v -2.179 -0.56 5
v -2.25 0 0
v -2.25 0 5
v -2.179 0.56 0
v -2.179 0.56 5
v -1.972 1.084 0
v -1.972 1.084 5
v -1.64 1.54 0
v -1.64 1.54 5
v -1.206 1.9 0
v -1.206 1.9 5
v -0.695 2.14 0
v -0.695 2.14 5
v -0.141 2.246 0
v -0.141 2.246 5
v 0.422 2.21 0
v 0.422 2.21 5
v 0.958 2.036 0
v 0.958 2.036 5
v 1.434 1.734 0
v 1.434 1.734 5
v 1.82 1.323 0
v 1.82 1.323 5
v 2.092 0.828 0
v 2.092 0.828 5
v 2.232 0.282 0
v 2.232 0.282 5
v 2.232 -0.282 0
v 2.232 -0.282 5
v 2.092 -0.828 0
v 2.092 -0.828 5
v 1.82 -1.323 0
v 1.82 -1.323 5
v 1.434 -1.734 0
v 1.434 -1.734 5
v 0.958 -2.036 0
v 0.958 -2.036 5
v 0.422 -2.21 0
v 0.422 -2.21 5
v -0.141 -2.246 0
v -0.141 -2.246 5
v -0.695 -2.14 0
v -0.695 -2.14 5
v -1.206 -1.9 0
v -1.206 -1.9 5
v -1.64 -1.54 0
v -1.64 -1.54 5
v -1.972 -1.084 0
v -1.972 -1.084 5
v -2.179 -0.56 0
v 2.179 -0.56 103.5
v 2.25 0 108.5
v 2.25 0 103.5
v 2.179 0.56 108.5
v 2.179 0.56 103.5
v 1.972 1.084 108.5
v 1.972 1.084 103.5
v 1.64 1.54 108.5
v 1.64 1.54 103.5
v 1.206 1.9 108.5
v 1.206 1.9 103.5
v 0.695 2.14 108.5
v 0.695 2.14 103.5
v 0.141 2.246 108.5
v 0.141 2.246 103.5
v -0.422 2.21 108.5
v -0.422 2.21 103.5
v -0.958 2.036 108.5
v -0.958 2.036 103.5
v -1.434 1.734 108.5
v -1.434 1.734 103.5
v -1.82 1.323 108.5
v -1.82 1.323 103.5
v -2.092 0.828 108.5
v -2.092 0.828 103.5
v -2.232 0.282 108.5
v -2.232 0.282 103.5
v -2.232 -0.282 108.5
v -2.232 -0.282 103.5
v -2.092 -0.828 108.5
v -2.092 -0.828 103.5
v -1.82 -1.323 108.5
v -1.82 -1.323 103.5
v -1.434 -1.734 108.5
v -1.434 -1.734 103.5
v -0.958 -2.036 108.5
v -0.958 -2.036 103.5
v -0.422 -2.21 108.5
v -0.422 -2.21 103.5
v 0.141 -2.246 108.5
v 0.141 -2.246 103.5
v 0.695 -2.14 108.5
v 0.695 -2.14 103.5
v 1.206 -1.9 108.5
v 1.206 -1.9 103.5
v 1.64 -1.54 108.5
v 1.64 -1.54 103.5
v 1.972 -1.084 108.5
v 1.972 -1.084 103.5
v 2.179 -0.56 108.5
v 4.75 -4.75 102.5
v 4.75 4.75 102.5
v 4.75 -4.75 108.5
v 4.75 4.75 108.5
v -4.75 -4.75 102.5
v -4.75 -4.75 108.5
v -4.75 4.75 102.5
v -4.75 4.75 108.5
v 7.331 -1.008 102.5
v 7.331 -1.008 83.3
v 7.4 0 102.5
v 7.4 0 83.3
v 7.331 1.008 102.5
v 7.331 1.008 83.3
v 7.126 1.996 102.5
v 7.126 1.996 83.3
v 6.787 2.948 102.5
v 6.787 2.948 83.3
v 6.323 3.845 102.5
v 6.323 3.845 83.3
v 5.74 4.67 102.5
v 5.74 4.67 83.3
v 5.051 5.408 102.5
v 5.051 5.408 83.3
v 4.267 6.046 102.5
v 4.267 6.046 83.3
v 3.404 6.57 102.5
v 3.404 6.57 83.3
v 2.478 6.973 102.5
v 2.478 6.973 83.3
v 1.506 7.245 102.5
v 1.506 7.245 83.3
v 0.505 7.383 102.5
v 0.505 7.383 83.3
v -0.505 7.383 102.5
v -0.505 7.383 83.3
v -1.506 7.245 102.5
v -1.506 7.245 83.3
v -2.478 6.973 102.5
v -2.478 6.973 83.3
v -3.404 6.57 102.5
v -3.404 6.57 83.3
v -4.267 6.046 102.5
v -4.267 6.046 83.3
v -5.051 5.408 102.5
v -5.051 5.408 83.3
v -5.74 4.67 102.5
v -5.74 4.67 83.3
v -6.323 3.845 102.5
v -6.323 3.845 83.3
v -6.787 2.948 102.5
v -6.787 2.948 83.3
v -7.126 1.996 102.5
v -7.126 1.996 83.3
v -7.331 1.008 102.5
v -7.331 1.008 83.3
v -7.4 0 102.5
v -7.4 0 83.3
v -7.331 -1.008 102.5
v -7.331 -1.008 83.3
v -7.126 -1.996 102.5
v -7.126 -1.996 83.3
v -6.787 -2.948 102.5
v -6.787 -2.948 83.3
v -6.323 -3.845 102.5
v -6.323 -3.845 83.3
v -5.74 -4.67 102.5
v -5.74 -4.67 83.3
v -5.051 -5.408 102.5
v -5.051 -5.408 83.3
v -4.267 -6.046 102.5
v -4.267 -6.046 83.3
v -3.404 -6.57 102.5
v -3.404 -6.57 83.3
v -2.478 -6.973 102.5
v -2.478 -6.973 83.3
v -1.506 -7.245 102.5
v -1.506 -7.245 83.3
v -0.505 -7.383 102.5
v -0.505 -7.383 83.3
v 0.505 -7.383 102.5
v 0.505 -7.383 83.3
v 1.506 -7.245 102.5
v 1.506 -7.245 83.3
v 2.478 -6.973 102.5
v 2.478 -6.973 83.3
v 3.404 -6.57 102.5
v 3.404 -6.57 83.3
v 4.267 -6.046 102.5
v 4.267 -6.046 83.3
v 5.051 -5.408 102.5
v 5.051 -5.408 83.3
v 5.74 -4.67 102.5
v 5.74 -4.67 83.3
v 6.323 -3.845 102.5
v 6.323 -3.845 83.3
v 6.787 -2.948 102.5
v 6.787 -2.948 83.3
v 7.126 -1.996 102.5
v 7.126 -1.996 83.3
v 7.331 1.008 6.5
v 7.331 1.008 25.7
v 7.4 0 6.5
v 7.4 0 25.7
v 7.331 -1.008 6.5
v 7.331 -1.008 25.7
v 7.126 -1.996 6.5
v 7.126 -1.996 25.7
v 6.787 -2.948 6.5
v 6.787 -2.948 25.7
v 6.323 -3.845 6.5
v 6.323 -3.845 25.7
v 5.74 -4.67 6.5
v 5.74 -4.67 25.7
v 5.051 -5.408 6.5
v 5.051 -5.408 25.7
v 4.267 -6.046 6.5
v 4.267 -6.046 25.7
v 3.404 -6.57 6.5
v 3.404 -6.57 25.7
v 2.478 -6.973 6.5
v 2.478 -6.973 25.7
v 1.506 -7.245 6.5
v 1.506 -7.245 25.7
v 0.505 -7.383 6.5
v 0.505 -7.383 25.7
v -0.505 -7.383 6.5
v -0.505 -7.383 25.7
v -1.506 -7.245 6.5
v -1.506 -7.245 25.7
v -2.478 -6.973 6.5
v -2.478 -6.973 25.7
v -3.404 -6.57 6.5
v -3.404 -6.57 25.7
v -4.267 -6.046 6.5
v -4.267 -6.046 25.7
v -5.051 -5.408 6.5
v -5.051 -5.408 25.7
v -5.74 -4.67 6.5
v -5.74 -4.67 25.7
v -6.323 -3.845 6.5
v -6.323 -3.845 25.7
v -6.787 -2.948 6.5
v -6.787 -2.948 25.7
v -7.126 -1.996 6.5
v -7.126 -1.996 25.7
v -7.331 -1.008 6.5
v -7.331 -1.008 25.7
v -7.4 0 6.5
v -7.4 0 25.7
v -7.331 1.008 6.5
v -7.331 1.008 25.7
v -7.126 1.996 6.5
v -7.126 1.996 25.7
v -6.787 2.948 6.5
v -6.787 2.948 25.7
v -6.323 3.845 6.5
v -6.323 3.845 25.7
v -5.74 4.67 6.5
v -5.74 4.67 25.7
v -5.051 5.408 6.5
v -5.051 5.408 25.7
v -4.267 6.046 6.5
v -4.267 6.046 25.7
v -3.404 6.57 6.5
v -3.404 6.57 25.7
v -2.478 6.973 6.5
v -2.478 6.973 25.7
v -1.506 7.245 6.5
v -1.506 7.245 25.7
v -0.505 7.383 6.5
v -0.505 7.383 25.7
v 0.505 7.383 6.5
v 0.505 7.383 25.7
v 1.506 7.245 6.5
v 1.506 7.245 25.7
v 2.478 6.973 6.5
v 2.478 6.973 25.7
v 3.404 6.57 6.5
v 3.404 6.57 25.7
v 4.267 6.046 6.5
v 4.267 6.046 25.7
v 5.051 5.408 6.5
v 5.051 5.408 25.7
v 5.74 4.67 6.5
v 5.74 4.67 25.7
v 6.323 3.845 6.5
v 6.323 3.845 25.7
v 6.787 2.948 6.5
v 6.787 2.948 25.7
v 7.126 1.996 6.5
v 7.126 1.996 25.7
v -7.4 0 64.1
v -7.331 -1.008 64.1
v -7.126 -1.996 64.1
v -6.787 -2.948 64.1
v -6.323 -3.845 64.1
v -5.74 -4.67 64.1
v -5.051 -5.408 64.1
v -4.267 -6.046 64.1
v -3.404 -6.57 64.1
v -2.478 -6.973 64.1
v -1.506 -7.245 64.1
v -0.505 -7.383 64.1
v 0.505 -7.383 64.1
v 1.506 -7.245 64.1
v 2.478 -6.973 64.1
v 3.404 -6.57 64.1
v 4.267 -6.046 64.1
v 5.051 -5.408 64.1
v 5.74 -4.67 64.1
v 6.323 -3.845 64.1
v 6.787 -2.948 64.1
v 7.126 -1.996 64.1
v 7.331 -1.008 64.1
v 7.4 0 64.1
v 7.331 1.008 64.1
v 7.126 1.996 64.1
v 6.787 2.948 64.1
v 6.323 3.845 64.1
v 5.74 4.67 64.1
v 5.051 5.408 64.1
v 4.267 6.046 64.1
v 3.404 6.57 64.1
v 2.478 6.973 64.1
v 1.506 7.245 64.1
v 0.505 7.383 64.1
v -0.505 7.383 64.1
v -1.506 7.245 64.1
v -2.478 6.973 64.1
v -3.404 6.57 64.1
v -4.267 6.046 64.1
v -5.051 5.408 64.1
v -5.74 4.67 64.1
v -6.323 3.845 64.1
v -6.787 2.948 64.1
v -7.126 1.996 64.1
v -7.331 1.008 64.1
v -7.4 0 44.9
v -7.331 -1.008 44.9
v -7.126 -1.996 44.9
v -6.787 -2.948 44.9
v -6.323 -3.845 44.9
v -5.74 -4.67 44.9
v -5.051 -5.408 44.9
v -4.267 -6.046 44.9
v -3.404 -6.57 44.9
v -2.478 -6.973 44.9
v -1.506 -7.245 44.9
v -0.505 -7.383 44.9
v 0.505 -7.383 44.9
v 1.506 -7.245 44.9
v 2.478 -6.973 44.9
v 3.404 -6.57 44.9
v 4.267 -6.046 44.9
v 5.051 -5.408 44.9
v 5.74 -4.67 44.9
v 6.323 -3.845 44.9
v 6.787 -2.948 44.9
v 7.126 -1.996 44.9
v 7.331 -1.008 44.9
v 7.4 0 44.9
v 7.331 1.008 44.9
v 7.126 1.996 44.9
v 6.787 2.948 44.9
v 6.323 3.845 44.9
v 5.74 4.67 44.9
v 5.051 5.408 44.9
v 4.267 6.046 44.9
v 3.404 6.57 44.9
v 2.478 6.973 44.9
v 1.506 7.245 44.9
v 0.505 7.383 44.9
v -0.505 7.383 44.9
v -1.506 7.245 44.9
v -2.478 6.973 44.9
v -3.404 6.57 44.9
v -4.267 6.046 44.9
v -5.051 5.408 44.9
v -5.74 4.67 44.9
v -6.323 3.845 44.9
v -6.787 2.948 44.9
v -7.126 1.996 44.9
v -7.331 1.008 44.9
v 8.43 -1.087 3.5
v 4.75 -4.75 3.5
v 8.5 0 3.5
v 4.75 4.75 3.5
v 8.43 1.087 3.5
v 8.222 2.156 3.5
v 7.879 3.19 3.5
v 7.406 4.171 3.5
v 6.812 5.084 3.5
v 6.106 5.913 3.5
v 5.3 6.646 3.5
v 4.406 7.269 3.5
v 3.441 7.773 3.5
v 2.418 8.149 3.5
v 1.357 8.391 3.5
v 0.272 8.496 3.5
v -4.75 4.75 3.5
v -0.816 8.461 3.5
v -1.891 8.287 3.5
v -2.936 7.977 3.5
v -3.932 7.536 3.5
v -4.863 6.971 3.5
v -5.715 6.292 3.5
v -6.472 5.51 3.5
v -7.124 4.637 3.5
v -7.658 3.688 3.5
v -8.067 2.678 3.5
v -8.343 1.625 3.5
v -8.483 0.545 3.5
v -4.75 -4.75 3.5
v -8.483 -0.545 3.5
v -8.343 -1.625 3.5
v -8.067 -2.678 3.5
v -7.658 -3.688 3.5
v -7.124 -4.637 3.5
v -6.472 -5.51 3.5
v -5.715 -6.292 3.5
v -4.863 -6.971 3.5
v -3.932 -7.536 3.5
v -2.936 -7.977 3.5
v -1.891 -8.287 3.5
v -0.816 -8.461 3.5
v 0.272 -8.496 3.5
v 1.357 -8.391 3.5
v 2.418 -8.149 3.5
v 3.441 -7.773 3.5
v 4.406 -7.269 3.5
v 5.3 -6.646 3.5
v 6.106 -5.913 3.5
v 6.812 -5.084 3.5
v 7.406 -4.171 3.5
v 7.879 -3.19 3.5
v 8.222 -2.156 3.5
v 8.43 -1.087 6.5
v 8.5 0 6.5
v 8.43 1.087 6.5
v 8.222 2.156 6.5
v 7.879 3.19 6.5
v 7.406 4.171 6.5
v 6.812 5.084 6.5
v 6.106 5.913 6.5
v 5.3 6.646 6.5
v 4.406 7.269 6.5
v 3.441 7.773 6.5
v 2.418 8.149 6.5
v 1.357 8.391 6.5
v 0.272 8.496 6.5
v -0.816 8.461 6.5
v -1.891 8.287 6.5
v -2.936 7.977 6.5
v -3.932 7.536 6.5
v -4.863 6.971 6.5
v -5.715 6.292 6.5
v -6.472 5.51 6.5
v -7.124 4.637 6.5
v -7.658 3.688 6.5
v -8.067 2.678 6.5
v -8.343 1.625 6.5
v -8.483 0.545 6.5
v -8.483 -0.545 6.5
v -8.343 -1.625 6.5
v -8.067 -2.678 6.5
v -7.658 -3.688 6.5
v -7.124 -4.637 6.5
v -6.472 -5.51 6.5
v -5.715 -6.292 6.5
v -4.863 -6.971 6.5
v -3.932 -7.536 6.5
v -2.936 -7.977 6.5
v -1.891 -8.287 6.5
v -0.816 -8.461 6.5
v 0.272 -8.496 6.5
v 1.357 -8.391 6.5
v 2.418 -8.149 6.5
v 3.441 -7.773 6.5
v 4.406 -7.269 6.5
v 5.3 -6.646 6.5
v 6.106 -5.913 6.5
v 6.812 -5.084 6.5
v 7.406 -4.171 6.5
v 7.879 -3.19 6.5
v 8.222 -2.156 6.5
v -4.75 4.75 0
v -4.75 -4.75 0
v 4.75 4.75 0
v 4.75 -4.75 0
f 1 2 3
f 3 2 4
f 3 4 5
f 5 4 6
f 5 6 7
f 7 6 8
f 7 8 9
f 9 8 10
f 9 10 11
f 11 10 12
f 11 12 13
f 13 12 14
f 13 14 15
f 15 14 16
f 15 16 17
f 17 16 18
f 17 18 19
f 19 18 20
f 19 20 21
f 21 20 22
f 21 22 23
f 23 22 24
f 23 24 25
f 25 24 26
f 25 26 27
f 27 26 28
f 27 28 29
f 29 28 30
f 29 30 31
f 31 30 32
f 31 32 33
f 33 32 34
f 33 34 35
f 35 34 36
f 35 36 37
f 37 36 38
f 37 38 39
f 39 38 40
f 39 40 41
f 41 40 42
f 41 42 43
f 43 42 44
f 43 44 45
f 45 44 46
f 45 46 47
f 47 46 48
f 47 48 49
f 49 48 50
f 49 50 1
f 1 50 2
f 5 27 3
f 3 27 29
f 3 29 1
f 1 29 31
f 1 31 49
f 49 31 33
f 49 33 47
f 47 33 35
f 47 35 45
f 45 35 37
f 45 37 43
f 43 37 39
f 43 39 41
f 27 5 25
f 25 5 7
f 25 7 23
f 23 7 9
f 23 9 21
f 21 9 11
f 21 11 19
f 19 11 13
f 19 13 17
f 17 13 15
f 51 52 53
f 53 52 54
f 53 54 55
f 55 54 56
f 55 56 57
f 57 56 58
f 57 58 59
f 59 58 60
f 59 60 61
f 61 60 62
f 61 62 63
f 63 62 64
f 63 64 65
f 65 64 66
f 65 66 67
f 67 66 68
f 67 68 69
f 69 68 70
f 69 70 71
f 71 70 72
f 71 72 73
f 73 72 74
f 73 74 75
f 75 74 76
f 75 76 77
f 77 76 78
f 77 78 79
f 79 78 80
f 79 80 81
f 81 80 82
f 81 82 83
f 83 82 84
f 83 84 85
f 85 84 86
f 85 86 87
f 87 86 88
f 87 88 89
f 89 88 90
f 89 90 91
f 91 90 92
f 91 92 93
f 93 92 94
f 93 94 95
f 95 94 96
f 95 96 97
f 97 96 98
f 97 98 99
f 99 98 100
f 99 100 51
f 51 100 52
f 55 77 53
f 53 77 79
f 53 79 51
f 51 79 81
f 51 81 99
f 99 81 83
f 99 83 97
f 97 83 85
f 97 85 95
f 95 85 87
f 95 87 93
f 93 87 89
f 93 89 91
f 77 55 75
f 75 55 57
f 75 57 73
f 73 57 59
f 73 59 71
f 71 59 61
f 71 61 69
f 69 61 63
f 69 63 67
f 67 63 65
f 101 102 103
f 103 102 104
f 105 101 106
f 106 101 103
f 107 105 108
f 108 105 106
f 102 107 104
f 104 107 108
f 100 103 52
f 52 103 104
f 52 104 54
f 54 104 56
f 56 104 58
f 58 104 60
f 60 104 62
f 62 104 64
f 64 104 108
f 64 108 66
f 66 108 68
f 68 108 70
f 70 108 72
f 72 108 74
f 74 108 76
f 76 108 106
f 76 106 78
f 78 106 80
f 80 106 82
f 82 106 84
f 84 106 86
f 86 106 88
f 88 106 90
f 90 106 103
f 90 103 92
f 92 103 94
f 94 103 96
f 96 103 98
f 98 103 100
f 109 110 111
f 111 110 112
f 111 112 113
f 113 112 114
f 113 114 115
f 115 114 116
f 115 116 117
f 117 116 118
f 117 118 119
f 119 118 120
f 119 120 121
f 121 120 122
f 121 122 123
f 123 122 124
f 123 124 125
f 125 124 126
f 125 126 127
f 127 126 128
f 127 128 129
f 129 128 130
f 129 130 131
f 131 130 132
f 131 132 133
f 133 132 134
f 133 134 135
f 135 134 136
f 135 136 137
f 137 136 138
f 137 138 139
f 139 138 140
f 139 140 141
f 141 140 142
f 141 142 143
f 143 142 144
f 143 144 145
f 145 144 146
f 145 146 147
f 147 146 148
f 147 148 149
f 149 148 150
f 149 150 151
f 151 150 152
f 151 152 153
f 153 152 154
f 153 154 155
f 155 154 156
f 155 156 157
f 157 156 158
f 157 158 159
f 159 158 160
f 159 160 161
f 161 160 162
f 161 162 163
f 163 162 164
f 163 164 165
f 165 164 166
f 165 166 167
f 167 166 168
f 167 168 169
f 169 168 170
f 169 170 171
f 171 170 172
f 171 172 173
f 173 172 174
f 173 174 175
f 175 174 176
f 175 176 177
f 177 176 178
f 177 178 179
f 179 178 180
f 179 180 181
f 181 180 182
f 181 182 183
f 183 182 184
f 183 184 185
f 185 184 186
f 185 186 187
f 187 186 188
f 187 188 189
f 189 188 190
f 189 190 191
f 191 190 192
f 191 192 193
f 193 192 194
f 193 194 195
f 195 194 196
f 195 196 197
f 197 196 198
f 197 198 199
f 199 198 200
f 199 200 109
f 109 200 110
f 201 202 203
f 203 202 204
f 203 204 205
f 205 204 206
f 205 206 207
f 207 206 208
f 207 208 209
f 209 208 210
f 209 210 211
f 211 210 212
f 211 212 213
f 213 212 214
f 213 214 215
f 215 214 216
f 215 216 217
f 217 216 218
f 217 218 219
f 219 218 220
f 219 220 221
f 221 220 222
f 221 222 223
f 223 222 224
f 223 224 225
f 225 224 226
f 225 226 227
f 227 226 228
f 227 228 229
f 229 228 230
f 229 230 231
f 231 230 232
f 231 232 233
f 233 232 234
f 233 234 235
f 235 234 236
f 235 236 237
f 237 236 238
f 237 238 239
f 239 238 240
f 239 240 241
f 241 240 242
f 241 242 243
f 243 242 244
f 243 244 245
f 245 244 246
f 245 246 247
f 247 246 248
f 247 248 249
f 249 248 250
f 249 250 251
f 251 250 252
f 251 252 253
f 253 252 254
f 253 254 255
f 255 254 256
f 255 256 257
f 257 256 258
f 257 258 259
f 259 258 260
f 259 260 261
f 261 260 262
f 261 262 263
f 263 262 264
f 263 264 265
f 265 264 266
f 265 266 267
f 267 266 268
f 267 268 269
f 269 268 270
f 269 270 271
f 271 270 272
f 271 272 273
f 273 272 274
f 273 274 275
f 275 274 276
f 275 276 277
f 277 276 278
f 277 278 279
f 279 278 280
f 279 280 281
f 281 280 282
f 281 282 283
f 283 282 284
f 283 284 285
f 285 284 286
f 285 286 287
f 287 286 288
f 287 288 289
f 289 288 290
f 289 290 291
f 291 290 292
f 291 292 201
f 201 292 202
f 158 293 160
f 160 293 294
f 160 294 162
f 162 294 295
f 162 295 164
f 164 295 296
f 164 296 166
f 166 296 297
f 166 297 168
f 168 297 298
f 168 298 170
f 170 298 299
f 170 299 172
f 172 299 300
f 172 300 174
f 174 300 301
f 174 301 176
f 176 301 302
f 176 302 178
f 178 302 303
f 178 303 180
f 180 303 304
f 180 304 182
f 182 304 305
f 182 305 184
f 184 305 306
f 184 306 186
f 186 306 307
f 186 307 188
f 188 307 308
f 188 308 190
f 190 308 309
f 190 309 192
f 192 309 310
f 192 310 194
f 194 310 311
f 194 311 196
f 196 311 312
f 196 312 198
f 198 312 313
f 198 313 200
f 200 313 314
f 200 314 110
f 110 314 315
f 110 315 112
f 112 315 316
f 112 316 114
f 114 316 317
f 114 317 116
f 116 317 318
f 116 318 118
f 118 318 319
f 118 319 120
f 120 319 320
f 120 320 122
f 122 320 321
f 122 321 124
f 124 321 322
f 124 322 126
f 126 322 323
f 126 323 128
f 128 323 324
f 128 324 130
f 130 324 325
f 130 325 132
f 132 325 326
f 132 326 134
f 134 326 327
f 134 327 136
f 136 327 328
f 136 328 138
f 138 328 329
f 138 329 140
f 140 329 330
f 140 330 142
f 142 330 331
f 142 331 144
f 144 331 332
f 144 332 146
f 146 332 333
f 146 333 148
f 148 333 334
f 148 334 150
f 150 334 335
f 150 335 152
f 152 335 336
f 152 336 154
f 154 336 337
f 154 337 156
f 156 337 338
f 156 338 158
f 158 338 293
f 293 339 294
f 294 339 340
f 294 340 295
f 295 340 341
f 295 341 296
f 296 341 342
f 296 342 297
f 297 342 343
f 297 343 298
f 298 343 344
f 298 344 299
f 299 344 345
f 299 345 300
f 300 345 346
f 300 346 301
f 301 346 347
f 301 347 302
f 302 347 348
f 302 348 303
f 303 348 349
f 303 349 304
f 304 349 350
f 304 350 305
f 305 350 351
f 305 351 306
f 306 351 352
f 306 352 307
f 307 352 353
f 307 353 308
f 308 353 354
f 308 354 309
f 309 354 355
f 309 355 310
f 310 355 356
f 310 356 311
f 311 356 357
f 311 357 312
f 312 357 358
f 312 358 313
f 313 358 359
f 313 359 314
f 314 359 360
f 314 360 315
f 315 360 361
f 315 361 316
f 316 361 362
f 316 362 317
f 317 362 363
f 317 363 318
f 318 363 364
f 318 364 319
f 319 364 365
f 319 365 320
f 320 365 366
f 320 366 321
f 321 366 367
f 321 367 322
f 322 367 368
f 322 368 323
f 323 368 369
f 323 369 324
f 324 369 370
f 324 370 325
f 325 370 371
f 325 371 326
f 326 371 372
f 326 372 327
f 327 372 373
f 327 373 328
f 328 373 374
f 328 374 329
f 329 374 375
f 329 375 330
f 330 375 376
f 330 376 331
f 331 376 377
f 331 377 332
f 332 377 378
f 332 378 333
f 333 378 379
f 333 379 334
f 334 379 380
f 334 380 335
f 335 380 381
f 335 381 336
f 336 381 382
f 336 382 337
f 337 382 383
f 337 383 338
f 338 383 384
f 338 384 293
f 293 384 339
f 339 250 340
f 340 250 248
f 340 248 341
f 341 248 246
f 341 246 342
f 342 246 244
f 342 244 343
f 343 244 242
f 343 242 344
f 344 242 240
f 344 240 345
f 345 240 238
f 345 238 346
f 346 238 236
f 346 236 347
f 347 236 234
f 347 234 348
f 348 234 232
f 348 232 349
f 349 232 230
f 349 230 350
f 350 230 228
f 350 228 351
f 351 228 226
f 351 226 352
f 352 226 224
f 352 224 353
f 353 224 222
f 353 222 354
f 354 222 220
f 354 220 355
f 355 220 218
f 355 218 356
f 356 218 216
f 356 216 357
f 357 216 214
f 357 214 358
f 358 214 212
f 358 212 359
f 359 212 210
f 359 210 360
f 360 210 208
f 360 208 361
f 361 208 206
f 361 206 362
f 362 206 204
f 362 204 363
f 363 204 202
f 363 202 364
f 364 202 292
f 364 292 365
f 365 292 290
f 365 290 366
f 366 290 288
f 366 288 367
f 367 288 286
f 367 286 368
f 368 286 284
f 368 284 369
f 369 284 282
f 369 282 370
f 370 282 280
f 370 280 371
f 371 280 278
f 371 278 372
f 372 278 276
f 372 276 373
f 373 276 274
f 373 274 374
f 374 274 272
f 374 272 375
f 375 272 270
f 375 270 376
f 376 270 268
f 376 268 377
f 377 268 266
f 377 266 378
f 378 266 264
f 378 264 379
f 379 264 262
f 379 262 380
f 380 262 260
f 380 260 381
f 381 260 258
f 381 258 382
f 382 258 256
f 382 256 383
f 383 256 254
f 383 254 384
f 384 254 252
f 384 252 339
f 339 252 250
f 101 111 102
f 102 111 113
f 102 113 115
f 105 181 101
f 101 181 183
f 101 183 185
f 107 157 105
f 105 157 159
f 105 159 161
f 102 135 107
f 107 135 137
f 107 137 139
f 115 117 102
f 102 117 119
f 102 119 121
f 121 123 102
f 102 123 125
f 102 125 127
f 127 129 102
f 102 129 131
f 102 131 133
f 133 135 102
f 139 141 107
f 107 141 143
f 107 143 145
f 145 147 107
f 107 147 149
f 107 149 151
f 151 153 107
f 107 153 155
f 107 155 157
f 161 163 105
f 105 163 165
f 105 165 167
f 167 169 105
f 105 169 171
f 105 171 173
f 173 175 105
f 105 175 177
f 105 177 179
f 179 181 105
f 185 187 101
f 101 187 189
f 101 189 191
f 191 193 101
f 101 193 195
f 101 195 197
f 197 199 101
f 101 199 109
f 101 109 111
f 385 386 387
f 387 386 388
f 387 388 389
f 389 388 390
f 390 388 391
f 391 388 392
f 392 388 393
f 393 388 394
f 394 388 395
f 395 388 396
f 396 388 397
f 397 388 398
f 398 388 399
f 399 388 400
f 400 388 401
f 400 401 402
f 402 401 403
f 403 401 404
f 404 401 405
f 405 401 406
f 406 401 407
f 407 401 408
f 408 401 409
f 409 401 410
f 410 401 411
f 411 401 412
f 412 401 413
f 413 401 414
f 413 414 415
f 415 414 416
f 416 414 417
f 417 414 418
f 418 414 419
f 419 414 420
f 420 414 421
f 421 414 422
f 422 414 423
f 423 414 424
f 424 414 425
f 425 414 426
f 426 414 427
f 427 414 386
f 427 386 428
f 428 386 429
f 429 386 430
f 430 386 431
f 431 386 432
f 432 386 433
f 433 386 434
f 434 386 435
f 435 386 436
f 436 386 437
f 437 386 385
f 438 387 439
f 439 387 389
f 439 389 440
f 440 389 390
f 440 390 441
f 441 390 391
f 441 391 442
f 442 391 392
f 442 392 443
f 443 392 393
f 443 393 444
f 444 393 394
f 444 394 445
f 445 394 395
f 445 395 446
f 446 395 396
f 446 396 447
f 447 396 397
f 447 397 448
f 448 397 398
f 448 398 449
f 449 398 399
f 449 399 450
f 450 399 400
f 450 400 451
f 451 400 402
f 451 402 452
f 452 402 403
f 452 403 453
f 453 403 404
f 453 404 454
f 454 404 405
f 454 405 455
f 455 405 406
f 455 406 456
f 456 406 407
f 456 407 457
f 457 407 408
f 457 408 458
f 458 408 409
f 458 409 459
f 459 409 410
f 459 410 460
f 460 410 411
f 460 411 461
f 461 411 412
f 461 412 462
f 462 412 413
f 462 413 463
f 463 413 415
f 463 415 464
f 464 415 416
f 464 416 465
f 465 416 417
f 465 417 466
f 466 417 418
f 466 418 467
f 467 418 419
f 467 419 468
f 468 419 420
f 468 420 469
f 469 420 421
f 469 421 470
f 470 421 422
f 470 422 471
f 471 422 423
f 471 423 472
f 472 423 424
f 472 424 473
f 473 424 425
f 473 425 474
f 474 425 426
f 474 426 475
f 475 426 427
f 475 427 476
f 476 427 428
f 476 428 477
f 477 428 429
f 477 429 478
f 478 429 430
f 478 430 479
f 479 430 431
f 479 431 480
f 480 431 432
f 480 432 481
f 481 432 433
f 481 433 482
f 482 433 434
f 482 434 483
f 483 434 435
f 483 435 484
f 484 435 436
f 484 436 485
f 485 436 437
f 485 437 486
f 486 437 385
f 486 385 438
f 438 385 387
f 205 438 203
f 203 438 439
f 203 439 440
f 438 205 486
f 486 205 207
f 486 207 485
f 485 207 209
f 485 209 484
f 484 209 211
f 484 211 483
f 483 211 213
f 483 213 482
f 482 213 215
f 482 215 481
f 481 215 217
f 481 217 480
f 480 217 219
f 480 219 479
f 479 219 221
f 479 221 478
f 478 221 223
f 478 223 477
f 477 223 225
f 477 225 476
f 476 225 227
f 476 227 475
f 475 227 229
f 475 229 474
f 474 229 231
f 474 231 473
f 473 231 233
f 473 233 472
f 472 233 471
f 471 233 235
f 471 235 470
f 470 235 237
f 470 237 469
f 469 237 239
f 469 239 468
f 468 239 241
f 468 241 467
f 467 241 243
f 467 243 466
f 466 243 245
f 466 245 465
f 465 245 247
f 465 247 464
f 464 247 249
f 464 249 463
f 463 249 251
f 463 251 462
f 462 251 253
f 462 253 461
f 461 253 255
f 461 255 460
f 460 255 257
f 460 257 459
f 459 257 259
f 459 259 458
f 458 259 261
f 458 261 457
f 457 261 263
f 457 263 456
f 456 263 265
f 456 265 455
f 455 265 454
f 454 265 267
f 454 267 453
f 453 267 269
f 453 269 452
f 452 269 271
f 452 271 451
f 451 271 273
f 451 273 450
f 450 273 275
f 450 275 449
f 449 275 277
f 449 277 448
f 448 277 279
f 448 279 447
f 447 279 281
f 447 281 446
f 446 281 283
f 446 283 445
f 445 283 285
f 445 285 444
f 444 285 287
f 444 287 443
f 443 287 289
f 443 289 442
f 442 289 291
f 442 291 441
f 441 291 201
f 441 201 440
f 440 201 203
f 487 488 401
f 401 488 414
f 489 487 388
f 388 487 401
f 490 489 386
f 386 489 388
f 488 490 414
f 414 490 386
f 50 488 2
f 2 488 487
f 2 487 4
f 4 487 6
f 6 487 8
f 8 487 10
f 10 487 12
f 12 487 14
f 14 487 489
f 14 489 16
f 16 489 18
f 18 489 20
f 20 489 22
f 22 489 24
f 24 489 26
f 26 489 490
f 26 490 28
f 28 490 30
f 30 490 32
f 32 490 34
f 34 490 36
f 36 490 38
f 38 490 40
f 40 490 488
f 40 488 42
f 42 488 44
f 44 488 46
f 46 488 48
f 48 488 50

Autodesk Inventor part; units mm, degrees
ref_plane "YZ Plane" through (0, 0, 0) normal (1, 0, 0) x (0, 1, 0)
ref_plane "XZ Plane" through (0, 0, 0) normal (0, 1, 0) x (-1, 0, 0)
ref_plane "XY Plane" through (0, 0, 0) normal (0, 0, 1) x (1, 0, 0)
sketch "Skizze1" plane through (0, 0, 0) normal (0, 0, 1) x (1, 0, 0)
  line L0 (-4.75, 4.75) -> (4.75, 4.75)
  line L1 (4.75, 4.75) -> (4.75, -4.75)
  line L2 (4.75, -4.75) -> (-4.75, -4.75)
  line L3 (-4.75, -4.75) -> (-4.75, 4.75)
  line L4 (-4.75, 4.75) -> (4.75, -4.75) construction
  line L5 (4.75, 4.75) -> (-4.75, -4.75) construction
  point P0 (0, 0)
  dimension "d0" = 9.5
  dimension "d1" = 9.5
extrude "Extrusion1" add sketch "Skizze1" along normal blind 3.5
sketch "Skizze2" plane through (0, 0, 3.5) normal (0, 0, 1) x (1, 0, 0)
  circle A0 centre (0, 0) radius 8.5
  dimension "d4" = 17
extrude "Extrusion2" add sketch "Skizze2" along normal blind 3
sketch "Skizze3" plane through (0, 0, 6.5) normal (0, 0, 1) x (1, 0, 0)
  circle A0 centre (0, 0) radius 7.4
  circle A1 centre (0, 0) radius 8.5 projected
  dimension "d7" = 14.8
  dimension "d19" = 1.1
extrude "Extrusion3" add sketch "Skizze3" along normal blind 96 contours A0
sketch "Skizze4" plane through (0, 0, 102.5) normal (0, 0, 1) x (1, 0, 0)
  line L0 (-4.75, -4.75) -> (4.75, -4.75) projected
  line L1 (-4.75, 4.75) -> (4.75, 4.75)
  line L2 (4.75, 4.75) -> (4.75, -4.75)
  line L3 (4.75, -4.75) -> (-4.75, -4.75)
  line L4 (-4.75, -4.75) -> (-4.75, 4.75)
  line L5 (-4.75, 4.75) -> (4.75, -4.75) construction
  line L6 (4.75, 4.75) -> (-4.75, -4.75) construction
  point P0 (0, 0)
  dimension "d10" = 9.5
extrude "Extrusion4" add sketch "Skizze4" along normal blind 6
sketch "Skizze5" plane through (0, 0, 108.5) normal (0, 0, 1) x (1, 0, 0)
  circle A0 centre (0, 0) radius 2.25
  dimension "d13" = 4.5
extrude "Extrusion5" cut sketch "Skizze5" against normal blind 5
sketch "Skizze6" plane through (0, 0, 0) normal (0, 0, -1) x (-1, 0, 0)
  circle A0 centre (0, 0) radius 2.25
  dimension "d16" = 4.5
extrude "Extrusion6" cut sketch "Skizze6" against normal blind 5
properties part number "_3D-Druck"
